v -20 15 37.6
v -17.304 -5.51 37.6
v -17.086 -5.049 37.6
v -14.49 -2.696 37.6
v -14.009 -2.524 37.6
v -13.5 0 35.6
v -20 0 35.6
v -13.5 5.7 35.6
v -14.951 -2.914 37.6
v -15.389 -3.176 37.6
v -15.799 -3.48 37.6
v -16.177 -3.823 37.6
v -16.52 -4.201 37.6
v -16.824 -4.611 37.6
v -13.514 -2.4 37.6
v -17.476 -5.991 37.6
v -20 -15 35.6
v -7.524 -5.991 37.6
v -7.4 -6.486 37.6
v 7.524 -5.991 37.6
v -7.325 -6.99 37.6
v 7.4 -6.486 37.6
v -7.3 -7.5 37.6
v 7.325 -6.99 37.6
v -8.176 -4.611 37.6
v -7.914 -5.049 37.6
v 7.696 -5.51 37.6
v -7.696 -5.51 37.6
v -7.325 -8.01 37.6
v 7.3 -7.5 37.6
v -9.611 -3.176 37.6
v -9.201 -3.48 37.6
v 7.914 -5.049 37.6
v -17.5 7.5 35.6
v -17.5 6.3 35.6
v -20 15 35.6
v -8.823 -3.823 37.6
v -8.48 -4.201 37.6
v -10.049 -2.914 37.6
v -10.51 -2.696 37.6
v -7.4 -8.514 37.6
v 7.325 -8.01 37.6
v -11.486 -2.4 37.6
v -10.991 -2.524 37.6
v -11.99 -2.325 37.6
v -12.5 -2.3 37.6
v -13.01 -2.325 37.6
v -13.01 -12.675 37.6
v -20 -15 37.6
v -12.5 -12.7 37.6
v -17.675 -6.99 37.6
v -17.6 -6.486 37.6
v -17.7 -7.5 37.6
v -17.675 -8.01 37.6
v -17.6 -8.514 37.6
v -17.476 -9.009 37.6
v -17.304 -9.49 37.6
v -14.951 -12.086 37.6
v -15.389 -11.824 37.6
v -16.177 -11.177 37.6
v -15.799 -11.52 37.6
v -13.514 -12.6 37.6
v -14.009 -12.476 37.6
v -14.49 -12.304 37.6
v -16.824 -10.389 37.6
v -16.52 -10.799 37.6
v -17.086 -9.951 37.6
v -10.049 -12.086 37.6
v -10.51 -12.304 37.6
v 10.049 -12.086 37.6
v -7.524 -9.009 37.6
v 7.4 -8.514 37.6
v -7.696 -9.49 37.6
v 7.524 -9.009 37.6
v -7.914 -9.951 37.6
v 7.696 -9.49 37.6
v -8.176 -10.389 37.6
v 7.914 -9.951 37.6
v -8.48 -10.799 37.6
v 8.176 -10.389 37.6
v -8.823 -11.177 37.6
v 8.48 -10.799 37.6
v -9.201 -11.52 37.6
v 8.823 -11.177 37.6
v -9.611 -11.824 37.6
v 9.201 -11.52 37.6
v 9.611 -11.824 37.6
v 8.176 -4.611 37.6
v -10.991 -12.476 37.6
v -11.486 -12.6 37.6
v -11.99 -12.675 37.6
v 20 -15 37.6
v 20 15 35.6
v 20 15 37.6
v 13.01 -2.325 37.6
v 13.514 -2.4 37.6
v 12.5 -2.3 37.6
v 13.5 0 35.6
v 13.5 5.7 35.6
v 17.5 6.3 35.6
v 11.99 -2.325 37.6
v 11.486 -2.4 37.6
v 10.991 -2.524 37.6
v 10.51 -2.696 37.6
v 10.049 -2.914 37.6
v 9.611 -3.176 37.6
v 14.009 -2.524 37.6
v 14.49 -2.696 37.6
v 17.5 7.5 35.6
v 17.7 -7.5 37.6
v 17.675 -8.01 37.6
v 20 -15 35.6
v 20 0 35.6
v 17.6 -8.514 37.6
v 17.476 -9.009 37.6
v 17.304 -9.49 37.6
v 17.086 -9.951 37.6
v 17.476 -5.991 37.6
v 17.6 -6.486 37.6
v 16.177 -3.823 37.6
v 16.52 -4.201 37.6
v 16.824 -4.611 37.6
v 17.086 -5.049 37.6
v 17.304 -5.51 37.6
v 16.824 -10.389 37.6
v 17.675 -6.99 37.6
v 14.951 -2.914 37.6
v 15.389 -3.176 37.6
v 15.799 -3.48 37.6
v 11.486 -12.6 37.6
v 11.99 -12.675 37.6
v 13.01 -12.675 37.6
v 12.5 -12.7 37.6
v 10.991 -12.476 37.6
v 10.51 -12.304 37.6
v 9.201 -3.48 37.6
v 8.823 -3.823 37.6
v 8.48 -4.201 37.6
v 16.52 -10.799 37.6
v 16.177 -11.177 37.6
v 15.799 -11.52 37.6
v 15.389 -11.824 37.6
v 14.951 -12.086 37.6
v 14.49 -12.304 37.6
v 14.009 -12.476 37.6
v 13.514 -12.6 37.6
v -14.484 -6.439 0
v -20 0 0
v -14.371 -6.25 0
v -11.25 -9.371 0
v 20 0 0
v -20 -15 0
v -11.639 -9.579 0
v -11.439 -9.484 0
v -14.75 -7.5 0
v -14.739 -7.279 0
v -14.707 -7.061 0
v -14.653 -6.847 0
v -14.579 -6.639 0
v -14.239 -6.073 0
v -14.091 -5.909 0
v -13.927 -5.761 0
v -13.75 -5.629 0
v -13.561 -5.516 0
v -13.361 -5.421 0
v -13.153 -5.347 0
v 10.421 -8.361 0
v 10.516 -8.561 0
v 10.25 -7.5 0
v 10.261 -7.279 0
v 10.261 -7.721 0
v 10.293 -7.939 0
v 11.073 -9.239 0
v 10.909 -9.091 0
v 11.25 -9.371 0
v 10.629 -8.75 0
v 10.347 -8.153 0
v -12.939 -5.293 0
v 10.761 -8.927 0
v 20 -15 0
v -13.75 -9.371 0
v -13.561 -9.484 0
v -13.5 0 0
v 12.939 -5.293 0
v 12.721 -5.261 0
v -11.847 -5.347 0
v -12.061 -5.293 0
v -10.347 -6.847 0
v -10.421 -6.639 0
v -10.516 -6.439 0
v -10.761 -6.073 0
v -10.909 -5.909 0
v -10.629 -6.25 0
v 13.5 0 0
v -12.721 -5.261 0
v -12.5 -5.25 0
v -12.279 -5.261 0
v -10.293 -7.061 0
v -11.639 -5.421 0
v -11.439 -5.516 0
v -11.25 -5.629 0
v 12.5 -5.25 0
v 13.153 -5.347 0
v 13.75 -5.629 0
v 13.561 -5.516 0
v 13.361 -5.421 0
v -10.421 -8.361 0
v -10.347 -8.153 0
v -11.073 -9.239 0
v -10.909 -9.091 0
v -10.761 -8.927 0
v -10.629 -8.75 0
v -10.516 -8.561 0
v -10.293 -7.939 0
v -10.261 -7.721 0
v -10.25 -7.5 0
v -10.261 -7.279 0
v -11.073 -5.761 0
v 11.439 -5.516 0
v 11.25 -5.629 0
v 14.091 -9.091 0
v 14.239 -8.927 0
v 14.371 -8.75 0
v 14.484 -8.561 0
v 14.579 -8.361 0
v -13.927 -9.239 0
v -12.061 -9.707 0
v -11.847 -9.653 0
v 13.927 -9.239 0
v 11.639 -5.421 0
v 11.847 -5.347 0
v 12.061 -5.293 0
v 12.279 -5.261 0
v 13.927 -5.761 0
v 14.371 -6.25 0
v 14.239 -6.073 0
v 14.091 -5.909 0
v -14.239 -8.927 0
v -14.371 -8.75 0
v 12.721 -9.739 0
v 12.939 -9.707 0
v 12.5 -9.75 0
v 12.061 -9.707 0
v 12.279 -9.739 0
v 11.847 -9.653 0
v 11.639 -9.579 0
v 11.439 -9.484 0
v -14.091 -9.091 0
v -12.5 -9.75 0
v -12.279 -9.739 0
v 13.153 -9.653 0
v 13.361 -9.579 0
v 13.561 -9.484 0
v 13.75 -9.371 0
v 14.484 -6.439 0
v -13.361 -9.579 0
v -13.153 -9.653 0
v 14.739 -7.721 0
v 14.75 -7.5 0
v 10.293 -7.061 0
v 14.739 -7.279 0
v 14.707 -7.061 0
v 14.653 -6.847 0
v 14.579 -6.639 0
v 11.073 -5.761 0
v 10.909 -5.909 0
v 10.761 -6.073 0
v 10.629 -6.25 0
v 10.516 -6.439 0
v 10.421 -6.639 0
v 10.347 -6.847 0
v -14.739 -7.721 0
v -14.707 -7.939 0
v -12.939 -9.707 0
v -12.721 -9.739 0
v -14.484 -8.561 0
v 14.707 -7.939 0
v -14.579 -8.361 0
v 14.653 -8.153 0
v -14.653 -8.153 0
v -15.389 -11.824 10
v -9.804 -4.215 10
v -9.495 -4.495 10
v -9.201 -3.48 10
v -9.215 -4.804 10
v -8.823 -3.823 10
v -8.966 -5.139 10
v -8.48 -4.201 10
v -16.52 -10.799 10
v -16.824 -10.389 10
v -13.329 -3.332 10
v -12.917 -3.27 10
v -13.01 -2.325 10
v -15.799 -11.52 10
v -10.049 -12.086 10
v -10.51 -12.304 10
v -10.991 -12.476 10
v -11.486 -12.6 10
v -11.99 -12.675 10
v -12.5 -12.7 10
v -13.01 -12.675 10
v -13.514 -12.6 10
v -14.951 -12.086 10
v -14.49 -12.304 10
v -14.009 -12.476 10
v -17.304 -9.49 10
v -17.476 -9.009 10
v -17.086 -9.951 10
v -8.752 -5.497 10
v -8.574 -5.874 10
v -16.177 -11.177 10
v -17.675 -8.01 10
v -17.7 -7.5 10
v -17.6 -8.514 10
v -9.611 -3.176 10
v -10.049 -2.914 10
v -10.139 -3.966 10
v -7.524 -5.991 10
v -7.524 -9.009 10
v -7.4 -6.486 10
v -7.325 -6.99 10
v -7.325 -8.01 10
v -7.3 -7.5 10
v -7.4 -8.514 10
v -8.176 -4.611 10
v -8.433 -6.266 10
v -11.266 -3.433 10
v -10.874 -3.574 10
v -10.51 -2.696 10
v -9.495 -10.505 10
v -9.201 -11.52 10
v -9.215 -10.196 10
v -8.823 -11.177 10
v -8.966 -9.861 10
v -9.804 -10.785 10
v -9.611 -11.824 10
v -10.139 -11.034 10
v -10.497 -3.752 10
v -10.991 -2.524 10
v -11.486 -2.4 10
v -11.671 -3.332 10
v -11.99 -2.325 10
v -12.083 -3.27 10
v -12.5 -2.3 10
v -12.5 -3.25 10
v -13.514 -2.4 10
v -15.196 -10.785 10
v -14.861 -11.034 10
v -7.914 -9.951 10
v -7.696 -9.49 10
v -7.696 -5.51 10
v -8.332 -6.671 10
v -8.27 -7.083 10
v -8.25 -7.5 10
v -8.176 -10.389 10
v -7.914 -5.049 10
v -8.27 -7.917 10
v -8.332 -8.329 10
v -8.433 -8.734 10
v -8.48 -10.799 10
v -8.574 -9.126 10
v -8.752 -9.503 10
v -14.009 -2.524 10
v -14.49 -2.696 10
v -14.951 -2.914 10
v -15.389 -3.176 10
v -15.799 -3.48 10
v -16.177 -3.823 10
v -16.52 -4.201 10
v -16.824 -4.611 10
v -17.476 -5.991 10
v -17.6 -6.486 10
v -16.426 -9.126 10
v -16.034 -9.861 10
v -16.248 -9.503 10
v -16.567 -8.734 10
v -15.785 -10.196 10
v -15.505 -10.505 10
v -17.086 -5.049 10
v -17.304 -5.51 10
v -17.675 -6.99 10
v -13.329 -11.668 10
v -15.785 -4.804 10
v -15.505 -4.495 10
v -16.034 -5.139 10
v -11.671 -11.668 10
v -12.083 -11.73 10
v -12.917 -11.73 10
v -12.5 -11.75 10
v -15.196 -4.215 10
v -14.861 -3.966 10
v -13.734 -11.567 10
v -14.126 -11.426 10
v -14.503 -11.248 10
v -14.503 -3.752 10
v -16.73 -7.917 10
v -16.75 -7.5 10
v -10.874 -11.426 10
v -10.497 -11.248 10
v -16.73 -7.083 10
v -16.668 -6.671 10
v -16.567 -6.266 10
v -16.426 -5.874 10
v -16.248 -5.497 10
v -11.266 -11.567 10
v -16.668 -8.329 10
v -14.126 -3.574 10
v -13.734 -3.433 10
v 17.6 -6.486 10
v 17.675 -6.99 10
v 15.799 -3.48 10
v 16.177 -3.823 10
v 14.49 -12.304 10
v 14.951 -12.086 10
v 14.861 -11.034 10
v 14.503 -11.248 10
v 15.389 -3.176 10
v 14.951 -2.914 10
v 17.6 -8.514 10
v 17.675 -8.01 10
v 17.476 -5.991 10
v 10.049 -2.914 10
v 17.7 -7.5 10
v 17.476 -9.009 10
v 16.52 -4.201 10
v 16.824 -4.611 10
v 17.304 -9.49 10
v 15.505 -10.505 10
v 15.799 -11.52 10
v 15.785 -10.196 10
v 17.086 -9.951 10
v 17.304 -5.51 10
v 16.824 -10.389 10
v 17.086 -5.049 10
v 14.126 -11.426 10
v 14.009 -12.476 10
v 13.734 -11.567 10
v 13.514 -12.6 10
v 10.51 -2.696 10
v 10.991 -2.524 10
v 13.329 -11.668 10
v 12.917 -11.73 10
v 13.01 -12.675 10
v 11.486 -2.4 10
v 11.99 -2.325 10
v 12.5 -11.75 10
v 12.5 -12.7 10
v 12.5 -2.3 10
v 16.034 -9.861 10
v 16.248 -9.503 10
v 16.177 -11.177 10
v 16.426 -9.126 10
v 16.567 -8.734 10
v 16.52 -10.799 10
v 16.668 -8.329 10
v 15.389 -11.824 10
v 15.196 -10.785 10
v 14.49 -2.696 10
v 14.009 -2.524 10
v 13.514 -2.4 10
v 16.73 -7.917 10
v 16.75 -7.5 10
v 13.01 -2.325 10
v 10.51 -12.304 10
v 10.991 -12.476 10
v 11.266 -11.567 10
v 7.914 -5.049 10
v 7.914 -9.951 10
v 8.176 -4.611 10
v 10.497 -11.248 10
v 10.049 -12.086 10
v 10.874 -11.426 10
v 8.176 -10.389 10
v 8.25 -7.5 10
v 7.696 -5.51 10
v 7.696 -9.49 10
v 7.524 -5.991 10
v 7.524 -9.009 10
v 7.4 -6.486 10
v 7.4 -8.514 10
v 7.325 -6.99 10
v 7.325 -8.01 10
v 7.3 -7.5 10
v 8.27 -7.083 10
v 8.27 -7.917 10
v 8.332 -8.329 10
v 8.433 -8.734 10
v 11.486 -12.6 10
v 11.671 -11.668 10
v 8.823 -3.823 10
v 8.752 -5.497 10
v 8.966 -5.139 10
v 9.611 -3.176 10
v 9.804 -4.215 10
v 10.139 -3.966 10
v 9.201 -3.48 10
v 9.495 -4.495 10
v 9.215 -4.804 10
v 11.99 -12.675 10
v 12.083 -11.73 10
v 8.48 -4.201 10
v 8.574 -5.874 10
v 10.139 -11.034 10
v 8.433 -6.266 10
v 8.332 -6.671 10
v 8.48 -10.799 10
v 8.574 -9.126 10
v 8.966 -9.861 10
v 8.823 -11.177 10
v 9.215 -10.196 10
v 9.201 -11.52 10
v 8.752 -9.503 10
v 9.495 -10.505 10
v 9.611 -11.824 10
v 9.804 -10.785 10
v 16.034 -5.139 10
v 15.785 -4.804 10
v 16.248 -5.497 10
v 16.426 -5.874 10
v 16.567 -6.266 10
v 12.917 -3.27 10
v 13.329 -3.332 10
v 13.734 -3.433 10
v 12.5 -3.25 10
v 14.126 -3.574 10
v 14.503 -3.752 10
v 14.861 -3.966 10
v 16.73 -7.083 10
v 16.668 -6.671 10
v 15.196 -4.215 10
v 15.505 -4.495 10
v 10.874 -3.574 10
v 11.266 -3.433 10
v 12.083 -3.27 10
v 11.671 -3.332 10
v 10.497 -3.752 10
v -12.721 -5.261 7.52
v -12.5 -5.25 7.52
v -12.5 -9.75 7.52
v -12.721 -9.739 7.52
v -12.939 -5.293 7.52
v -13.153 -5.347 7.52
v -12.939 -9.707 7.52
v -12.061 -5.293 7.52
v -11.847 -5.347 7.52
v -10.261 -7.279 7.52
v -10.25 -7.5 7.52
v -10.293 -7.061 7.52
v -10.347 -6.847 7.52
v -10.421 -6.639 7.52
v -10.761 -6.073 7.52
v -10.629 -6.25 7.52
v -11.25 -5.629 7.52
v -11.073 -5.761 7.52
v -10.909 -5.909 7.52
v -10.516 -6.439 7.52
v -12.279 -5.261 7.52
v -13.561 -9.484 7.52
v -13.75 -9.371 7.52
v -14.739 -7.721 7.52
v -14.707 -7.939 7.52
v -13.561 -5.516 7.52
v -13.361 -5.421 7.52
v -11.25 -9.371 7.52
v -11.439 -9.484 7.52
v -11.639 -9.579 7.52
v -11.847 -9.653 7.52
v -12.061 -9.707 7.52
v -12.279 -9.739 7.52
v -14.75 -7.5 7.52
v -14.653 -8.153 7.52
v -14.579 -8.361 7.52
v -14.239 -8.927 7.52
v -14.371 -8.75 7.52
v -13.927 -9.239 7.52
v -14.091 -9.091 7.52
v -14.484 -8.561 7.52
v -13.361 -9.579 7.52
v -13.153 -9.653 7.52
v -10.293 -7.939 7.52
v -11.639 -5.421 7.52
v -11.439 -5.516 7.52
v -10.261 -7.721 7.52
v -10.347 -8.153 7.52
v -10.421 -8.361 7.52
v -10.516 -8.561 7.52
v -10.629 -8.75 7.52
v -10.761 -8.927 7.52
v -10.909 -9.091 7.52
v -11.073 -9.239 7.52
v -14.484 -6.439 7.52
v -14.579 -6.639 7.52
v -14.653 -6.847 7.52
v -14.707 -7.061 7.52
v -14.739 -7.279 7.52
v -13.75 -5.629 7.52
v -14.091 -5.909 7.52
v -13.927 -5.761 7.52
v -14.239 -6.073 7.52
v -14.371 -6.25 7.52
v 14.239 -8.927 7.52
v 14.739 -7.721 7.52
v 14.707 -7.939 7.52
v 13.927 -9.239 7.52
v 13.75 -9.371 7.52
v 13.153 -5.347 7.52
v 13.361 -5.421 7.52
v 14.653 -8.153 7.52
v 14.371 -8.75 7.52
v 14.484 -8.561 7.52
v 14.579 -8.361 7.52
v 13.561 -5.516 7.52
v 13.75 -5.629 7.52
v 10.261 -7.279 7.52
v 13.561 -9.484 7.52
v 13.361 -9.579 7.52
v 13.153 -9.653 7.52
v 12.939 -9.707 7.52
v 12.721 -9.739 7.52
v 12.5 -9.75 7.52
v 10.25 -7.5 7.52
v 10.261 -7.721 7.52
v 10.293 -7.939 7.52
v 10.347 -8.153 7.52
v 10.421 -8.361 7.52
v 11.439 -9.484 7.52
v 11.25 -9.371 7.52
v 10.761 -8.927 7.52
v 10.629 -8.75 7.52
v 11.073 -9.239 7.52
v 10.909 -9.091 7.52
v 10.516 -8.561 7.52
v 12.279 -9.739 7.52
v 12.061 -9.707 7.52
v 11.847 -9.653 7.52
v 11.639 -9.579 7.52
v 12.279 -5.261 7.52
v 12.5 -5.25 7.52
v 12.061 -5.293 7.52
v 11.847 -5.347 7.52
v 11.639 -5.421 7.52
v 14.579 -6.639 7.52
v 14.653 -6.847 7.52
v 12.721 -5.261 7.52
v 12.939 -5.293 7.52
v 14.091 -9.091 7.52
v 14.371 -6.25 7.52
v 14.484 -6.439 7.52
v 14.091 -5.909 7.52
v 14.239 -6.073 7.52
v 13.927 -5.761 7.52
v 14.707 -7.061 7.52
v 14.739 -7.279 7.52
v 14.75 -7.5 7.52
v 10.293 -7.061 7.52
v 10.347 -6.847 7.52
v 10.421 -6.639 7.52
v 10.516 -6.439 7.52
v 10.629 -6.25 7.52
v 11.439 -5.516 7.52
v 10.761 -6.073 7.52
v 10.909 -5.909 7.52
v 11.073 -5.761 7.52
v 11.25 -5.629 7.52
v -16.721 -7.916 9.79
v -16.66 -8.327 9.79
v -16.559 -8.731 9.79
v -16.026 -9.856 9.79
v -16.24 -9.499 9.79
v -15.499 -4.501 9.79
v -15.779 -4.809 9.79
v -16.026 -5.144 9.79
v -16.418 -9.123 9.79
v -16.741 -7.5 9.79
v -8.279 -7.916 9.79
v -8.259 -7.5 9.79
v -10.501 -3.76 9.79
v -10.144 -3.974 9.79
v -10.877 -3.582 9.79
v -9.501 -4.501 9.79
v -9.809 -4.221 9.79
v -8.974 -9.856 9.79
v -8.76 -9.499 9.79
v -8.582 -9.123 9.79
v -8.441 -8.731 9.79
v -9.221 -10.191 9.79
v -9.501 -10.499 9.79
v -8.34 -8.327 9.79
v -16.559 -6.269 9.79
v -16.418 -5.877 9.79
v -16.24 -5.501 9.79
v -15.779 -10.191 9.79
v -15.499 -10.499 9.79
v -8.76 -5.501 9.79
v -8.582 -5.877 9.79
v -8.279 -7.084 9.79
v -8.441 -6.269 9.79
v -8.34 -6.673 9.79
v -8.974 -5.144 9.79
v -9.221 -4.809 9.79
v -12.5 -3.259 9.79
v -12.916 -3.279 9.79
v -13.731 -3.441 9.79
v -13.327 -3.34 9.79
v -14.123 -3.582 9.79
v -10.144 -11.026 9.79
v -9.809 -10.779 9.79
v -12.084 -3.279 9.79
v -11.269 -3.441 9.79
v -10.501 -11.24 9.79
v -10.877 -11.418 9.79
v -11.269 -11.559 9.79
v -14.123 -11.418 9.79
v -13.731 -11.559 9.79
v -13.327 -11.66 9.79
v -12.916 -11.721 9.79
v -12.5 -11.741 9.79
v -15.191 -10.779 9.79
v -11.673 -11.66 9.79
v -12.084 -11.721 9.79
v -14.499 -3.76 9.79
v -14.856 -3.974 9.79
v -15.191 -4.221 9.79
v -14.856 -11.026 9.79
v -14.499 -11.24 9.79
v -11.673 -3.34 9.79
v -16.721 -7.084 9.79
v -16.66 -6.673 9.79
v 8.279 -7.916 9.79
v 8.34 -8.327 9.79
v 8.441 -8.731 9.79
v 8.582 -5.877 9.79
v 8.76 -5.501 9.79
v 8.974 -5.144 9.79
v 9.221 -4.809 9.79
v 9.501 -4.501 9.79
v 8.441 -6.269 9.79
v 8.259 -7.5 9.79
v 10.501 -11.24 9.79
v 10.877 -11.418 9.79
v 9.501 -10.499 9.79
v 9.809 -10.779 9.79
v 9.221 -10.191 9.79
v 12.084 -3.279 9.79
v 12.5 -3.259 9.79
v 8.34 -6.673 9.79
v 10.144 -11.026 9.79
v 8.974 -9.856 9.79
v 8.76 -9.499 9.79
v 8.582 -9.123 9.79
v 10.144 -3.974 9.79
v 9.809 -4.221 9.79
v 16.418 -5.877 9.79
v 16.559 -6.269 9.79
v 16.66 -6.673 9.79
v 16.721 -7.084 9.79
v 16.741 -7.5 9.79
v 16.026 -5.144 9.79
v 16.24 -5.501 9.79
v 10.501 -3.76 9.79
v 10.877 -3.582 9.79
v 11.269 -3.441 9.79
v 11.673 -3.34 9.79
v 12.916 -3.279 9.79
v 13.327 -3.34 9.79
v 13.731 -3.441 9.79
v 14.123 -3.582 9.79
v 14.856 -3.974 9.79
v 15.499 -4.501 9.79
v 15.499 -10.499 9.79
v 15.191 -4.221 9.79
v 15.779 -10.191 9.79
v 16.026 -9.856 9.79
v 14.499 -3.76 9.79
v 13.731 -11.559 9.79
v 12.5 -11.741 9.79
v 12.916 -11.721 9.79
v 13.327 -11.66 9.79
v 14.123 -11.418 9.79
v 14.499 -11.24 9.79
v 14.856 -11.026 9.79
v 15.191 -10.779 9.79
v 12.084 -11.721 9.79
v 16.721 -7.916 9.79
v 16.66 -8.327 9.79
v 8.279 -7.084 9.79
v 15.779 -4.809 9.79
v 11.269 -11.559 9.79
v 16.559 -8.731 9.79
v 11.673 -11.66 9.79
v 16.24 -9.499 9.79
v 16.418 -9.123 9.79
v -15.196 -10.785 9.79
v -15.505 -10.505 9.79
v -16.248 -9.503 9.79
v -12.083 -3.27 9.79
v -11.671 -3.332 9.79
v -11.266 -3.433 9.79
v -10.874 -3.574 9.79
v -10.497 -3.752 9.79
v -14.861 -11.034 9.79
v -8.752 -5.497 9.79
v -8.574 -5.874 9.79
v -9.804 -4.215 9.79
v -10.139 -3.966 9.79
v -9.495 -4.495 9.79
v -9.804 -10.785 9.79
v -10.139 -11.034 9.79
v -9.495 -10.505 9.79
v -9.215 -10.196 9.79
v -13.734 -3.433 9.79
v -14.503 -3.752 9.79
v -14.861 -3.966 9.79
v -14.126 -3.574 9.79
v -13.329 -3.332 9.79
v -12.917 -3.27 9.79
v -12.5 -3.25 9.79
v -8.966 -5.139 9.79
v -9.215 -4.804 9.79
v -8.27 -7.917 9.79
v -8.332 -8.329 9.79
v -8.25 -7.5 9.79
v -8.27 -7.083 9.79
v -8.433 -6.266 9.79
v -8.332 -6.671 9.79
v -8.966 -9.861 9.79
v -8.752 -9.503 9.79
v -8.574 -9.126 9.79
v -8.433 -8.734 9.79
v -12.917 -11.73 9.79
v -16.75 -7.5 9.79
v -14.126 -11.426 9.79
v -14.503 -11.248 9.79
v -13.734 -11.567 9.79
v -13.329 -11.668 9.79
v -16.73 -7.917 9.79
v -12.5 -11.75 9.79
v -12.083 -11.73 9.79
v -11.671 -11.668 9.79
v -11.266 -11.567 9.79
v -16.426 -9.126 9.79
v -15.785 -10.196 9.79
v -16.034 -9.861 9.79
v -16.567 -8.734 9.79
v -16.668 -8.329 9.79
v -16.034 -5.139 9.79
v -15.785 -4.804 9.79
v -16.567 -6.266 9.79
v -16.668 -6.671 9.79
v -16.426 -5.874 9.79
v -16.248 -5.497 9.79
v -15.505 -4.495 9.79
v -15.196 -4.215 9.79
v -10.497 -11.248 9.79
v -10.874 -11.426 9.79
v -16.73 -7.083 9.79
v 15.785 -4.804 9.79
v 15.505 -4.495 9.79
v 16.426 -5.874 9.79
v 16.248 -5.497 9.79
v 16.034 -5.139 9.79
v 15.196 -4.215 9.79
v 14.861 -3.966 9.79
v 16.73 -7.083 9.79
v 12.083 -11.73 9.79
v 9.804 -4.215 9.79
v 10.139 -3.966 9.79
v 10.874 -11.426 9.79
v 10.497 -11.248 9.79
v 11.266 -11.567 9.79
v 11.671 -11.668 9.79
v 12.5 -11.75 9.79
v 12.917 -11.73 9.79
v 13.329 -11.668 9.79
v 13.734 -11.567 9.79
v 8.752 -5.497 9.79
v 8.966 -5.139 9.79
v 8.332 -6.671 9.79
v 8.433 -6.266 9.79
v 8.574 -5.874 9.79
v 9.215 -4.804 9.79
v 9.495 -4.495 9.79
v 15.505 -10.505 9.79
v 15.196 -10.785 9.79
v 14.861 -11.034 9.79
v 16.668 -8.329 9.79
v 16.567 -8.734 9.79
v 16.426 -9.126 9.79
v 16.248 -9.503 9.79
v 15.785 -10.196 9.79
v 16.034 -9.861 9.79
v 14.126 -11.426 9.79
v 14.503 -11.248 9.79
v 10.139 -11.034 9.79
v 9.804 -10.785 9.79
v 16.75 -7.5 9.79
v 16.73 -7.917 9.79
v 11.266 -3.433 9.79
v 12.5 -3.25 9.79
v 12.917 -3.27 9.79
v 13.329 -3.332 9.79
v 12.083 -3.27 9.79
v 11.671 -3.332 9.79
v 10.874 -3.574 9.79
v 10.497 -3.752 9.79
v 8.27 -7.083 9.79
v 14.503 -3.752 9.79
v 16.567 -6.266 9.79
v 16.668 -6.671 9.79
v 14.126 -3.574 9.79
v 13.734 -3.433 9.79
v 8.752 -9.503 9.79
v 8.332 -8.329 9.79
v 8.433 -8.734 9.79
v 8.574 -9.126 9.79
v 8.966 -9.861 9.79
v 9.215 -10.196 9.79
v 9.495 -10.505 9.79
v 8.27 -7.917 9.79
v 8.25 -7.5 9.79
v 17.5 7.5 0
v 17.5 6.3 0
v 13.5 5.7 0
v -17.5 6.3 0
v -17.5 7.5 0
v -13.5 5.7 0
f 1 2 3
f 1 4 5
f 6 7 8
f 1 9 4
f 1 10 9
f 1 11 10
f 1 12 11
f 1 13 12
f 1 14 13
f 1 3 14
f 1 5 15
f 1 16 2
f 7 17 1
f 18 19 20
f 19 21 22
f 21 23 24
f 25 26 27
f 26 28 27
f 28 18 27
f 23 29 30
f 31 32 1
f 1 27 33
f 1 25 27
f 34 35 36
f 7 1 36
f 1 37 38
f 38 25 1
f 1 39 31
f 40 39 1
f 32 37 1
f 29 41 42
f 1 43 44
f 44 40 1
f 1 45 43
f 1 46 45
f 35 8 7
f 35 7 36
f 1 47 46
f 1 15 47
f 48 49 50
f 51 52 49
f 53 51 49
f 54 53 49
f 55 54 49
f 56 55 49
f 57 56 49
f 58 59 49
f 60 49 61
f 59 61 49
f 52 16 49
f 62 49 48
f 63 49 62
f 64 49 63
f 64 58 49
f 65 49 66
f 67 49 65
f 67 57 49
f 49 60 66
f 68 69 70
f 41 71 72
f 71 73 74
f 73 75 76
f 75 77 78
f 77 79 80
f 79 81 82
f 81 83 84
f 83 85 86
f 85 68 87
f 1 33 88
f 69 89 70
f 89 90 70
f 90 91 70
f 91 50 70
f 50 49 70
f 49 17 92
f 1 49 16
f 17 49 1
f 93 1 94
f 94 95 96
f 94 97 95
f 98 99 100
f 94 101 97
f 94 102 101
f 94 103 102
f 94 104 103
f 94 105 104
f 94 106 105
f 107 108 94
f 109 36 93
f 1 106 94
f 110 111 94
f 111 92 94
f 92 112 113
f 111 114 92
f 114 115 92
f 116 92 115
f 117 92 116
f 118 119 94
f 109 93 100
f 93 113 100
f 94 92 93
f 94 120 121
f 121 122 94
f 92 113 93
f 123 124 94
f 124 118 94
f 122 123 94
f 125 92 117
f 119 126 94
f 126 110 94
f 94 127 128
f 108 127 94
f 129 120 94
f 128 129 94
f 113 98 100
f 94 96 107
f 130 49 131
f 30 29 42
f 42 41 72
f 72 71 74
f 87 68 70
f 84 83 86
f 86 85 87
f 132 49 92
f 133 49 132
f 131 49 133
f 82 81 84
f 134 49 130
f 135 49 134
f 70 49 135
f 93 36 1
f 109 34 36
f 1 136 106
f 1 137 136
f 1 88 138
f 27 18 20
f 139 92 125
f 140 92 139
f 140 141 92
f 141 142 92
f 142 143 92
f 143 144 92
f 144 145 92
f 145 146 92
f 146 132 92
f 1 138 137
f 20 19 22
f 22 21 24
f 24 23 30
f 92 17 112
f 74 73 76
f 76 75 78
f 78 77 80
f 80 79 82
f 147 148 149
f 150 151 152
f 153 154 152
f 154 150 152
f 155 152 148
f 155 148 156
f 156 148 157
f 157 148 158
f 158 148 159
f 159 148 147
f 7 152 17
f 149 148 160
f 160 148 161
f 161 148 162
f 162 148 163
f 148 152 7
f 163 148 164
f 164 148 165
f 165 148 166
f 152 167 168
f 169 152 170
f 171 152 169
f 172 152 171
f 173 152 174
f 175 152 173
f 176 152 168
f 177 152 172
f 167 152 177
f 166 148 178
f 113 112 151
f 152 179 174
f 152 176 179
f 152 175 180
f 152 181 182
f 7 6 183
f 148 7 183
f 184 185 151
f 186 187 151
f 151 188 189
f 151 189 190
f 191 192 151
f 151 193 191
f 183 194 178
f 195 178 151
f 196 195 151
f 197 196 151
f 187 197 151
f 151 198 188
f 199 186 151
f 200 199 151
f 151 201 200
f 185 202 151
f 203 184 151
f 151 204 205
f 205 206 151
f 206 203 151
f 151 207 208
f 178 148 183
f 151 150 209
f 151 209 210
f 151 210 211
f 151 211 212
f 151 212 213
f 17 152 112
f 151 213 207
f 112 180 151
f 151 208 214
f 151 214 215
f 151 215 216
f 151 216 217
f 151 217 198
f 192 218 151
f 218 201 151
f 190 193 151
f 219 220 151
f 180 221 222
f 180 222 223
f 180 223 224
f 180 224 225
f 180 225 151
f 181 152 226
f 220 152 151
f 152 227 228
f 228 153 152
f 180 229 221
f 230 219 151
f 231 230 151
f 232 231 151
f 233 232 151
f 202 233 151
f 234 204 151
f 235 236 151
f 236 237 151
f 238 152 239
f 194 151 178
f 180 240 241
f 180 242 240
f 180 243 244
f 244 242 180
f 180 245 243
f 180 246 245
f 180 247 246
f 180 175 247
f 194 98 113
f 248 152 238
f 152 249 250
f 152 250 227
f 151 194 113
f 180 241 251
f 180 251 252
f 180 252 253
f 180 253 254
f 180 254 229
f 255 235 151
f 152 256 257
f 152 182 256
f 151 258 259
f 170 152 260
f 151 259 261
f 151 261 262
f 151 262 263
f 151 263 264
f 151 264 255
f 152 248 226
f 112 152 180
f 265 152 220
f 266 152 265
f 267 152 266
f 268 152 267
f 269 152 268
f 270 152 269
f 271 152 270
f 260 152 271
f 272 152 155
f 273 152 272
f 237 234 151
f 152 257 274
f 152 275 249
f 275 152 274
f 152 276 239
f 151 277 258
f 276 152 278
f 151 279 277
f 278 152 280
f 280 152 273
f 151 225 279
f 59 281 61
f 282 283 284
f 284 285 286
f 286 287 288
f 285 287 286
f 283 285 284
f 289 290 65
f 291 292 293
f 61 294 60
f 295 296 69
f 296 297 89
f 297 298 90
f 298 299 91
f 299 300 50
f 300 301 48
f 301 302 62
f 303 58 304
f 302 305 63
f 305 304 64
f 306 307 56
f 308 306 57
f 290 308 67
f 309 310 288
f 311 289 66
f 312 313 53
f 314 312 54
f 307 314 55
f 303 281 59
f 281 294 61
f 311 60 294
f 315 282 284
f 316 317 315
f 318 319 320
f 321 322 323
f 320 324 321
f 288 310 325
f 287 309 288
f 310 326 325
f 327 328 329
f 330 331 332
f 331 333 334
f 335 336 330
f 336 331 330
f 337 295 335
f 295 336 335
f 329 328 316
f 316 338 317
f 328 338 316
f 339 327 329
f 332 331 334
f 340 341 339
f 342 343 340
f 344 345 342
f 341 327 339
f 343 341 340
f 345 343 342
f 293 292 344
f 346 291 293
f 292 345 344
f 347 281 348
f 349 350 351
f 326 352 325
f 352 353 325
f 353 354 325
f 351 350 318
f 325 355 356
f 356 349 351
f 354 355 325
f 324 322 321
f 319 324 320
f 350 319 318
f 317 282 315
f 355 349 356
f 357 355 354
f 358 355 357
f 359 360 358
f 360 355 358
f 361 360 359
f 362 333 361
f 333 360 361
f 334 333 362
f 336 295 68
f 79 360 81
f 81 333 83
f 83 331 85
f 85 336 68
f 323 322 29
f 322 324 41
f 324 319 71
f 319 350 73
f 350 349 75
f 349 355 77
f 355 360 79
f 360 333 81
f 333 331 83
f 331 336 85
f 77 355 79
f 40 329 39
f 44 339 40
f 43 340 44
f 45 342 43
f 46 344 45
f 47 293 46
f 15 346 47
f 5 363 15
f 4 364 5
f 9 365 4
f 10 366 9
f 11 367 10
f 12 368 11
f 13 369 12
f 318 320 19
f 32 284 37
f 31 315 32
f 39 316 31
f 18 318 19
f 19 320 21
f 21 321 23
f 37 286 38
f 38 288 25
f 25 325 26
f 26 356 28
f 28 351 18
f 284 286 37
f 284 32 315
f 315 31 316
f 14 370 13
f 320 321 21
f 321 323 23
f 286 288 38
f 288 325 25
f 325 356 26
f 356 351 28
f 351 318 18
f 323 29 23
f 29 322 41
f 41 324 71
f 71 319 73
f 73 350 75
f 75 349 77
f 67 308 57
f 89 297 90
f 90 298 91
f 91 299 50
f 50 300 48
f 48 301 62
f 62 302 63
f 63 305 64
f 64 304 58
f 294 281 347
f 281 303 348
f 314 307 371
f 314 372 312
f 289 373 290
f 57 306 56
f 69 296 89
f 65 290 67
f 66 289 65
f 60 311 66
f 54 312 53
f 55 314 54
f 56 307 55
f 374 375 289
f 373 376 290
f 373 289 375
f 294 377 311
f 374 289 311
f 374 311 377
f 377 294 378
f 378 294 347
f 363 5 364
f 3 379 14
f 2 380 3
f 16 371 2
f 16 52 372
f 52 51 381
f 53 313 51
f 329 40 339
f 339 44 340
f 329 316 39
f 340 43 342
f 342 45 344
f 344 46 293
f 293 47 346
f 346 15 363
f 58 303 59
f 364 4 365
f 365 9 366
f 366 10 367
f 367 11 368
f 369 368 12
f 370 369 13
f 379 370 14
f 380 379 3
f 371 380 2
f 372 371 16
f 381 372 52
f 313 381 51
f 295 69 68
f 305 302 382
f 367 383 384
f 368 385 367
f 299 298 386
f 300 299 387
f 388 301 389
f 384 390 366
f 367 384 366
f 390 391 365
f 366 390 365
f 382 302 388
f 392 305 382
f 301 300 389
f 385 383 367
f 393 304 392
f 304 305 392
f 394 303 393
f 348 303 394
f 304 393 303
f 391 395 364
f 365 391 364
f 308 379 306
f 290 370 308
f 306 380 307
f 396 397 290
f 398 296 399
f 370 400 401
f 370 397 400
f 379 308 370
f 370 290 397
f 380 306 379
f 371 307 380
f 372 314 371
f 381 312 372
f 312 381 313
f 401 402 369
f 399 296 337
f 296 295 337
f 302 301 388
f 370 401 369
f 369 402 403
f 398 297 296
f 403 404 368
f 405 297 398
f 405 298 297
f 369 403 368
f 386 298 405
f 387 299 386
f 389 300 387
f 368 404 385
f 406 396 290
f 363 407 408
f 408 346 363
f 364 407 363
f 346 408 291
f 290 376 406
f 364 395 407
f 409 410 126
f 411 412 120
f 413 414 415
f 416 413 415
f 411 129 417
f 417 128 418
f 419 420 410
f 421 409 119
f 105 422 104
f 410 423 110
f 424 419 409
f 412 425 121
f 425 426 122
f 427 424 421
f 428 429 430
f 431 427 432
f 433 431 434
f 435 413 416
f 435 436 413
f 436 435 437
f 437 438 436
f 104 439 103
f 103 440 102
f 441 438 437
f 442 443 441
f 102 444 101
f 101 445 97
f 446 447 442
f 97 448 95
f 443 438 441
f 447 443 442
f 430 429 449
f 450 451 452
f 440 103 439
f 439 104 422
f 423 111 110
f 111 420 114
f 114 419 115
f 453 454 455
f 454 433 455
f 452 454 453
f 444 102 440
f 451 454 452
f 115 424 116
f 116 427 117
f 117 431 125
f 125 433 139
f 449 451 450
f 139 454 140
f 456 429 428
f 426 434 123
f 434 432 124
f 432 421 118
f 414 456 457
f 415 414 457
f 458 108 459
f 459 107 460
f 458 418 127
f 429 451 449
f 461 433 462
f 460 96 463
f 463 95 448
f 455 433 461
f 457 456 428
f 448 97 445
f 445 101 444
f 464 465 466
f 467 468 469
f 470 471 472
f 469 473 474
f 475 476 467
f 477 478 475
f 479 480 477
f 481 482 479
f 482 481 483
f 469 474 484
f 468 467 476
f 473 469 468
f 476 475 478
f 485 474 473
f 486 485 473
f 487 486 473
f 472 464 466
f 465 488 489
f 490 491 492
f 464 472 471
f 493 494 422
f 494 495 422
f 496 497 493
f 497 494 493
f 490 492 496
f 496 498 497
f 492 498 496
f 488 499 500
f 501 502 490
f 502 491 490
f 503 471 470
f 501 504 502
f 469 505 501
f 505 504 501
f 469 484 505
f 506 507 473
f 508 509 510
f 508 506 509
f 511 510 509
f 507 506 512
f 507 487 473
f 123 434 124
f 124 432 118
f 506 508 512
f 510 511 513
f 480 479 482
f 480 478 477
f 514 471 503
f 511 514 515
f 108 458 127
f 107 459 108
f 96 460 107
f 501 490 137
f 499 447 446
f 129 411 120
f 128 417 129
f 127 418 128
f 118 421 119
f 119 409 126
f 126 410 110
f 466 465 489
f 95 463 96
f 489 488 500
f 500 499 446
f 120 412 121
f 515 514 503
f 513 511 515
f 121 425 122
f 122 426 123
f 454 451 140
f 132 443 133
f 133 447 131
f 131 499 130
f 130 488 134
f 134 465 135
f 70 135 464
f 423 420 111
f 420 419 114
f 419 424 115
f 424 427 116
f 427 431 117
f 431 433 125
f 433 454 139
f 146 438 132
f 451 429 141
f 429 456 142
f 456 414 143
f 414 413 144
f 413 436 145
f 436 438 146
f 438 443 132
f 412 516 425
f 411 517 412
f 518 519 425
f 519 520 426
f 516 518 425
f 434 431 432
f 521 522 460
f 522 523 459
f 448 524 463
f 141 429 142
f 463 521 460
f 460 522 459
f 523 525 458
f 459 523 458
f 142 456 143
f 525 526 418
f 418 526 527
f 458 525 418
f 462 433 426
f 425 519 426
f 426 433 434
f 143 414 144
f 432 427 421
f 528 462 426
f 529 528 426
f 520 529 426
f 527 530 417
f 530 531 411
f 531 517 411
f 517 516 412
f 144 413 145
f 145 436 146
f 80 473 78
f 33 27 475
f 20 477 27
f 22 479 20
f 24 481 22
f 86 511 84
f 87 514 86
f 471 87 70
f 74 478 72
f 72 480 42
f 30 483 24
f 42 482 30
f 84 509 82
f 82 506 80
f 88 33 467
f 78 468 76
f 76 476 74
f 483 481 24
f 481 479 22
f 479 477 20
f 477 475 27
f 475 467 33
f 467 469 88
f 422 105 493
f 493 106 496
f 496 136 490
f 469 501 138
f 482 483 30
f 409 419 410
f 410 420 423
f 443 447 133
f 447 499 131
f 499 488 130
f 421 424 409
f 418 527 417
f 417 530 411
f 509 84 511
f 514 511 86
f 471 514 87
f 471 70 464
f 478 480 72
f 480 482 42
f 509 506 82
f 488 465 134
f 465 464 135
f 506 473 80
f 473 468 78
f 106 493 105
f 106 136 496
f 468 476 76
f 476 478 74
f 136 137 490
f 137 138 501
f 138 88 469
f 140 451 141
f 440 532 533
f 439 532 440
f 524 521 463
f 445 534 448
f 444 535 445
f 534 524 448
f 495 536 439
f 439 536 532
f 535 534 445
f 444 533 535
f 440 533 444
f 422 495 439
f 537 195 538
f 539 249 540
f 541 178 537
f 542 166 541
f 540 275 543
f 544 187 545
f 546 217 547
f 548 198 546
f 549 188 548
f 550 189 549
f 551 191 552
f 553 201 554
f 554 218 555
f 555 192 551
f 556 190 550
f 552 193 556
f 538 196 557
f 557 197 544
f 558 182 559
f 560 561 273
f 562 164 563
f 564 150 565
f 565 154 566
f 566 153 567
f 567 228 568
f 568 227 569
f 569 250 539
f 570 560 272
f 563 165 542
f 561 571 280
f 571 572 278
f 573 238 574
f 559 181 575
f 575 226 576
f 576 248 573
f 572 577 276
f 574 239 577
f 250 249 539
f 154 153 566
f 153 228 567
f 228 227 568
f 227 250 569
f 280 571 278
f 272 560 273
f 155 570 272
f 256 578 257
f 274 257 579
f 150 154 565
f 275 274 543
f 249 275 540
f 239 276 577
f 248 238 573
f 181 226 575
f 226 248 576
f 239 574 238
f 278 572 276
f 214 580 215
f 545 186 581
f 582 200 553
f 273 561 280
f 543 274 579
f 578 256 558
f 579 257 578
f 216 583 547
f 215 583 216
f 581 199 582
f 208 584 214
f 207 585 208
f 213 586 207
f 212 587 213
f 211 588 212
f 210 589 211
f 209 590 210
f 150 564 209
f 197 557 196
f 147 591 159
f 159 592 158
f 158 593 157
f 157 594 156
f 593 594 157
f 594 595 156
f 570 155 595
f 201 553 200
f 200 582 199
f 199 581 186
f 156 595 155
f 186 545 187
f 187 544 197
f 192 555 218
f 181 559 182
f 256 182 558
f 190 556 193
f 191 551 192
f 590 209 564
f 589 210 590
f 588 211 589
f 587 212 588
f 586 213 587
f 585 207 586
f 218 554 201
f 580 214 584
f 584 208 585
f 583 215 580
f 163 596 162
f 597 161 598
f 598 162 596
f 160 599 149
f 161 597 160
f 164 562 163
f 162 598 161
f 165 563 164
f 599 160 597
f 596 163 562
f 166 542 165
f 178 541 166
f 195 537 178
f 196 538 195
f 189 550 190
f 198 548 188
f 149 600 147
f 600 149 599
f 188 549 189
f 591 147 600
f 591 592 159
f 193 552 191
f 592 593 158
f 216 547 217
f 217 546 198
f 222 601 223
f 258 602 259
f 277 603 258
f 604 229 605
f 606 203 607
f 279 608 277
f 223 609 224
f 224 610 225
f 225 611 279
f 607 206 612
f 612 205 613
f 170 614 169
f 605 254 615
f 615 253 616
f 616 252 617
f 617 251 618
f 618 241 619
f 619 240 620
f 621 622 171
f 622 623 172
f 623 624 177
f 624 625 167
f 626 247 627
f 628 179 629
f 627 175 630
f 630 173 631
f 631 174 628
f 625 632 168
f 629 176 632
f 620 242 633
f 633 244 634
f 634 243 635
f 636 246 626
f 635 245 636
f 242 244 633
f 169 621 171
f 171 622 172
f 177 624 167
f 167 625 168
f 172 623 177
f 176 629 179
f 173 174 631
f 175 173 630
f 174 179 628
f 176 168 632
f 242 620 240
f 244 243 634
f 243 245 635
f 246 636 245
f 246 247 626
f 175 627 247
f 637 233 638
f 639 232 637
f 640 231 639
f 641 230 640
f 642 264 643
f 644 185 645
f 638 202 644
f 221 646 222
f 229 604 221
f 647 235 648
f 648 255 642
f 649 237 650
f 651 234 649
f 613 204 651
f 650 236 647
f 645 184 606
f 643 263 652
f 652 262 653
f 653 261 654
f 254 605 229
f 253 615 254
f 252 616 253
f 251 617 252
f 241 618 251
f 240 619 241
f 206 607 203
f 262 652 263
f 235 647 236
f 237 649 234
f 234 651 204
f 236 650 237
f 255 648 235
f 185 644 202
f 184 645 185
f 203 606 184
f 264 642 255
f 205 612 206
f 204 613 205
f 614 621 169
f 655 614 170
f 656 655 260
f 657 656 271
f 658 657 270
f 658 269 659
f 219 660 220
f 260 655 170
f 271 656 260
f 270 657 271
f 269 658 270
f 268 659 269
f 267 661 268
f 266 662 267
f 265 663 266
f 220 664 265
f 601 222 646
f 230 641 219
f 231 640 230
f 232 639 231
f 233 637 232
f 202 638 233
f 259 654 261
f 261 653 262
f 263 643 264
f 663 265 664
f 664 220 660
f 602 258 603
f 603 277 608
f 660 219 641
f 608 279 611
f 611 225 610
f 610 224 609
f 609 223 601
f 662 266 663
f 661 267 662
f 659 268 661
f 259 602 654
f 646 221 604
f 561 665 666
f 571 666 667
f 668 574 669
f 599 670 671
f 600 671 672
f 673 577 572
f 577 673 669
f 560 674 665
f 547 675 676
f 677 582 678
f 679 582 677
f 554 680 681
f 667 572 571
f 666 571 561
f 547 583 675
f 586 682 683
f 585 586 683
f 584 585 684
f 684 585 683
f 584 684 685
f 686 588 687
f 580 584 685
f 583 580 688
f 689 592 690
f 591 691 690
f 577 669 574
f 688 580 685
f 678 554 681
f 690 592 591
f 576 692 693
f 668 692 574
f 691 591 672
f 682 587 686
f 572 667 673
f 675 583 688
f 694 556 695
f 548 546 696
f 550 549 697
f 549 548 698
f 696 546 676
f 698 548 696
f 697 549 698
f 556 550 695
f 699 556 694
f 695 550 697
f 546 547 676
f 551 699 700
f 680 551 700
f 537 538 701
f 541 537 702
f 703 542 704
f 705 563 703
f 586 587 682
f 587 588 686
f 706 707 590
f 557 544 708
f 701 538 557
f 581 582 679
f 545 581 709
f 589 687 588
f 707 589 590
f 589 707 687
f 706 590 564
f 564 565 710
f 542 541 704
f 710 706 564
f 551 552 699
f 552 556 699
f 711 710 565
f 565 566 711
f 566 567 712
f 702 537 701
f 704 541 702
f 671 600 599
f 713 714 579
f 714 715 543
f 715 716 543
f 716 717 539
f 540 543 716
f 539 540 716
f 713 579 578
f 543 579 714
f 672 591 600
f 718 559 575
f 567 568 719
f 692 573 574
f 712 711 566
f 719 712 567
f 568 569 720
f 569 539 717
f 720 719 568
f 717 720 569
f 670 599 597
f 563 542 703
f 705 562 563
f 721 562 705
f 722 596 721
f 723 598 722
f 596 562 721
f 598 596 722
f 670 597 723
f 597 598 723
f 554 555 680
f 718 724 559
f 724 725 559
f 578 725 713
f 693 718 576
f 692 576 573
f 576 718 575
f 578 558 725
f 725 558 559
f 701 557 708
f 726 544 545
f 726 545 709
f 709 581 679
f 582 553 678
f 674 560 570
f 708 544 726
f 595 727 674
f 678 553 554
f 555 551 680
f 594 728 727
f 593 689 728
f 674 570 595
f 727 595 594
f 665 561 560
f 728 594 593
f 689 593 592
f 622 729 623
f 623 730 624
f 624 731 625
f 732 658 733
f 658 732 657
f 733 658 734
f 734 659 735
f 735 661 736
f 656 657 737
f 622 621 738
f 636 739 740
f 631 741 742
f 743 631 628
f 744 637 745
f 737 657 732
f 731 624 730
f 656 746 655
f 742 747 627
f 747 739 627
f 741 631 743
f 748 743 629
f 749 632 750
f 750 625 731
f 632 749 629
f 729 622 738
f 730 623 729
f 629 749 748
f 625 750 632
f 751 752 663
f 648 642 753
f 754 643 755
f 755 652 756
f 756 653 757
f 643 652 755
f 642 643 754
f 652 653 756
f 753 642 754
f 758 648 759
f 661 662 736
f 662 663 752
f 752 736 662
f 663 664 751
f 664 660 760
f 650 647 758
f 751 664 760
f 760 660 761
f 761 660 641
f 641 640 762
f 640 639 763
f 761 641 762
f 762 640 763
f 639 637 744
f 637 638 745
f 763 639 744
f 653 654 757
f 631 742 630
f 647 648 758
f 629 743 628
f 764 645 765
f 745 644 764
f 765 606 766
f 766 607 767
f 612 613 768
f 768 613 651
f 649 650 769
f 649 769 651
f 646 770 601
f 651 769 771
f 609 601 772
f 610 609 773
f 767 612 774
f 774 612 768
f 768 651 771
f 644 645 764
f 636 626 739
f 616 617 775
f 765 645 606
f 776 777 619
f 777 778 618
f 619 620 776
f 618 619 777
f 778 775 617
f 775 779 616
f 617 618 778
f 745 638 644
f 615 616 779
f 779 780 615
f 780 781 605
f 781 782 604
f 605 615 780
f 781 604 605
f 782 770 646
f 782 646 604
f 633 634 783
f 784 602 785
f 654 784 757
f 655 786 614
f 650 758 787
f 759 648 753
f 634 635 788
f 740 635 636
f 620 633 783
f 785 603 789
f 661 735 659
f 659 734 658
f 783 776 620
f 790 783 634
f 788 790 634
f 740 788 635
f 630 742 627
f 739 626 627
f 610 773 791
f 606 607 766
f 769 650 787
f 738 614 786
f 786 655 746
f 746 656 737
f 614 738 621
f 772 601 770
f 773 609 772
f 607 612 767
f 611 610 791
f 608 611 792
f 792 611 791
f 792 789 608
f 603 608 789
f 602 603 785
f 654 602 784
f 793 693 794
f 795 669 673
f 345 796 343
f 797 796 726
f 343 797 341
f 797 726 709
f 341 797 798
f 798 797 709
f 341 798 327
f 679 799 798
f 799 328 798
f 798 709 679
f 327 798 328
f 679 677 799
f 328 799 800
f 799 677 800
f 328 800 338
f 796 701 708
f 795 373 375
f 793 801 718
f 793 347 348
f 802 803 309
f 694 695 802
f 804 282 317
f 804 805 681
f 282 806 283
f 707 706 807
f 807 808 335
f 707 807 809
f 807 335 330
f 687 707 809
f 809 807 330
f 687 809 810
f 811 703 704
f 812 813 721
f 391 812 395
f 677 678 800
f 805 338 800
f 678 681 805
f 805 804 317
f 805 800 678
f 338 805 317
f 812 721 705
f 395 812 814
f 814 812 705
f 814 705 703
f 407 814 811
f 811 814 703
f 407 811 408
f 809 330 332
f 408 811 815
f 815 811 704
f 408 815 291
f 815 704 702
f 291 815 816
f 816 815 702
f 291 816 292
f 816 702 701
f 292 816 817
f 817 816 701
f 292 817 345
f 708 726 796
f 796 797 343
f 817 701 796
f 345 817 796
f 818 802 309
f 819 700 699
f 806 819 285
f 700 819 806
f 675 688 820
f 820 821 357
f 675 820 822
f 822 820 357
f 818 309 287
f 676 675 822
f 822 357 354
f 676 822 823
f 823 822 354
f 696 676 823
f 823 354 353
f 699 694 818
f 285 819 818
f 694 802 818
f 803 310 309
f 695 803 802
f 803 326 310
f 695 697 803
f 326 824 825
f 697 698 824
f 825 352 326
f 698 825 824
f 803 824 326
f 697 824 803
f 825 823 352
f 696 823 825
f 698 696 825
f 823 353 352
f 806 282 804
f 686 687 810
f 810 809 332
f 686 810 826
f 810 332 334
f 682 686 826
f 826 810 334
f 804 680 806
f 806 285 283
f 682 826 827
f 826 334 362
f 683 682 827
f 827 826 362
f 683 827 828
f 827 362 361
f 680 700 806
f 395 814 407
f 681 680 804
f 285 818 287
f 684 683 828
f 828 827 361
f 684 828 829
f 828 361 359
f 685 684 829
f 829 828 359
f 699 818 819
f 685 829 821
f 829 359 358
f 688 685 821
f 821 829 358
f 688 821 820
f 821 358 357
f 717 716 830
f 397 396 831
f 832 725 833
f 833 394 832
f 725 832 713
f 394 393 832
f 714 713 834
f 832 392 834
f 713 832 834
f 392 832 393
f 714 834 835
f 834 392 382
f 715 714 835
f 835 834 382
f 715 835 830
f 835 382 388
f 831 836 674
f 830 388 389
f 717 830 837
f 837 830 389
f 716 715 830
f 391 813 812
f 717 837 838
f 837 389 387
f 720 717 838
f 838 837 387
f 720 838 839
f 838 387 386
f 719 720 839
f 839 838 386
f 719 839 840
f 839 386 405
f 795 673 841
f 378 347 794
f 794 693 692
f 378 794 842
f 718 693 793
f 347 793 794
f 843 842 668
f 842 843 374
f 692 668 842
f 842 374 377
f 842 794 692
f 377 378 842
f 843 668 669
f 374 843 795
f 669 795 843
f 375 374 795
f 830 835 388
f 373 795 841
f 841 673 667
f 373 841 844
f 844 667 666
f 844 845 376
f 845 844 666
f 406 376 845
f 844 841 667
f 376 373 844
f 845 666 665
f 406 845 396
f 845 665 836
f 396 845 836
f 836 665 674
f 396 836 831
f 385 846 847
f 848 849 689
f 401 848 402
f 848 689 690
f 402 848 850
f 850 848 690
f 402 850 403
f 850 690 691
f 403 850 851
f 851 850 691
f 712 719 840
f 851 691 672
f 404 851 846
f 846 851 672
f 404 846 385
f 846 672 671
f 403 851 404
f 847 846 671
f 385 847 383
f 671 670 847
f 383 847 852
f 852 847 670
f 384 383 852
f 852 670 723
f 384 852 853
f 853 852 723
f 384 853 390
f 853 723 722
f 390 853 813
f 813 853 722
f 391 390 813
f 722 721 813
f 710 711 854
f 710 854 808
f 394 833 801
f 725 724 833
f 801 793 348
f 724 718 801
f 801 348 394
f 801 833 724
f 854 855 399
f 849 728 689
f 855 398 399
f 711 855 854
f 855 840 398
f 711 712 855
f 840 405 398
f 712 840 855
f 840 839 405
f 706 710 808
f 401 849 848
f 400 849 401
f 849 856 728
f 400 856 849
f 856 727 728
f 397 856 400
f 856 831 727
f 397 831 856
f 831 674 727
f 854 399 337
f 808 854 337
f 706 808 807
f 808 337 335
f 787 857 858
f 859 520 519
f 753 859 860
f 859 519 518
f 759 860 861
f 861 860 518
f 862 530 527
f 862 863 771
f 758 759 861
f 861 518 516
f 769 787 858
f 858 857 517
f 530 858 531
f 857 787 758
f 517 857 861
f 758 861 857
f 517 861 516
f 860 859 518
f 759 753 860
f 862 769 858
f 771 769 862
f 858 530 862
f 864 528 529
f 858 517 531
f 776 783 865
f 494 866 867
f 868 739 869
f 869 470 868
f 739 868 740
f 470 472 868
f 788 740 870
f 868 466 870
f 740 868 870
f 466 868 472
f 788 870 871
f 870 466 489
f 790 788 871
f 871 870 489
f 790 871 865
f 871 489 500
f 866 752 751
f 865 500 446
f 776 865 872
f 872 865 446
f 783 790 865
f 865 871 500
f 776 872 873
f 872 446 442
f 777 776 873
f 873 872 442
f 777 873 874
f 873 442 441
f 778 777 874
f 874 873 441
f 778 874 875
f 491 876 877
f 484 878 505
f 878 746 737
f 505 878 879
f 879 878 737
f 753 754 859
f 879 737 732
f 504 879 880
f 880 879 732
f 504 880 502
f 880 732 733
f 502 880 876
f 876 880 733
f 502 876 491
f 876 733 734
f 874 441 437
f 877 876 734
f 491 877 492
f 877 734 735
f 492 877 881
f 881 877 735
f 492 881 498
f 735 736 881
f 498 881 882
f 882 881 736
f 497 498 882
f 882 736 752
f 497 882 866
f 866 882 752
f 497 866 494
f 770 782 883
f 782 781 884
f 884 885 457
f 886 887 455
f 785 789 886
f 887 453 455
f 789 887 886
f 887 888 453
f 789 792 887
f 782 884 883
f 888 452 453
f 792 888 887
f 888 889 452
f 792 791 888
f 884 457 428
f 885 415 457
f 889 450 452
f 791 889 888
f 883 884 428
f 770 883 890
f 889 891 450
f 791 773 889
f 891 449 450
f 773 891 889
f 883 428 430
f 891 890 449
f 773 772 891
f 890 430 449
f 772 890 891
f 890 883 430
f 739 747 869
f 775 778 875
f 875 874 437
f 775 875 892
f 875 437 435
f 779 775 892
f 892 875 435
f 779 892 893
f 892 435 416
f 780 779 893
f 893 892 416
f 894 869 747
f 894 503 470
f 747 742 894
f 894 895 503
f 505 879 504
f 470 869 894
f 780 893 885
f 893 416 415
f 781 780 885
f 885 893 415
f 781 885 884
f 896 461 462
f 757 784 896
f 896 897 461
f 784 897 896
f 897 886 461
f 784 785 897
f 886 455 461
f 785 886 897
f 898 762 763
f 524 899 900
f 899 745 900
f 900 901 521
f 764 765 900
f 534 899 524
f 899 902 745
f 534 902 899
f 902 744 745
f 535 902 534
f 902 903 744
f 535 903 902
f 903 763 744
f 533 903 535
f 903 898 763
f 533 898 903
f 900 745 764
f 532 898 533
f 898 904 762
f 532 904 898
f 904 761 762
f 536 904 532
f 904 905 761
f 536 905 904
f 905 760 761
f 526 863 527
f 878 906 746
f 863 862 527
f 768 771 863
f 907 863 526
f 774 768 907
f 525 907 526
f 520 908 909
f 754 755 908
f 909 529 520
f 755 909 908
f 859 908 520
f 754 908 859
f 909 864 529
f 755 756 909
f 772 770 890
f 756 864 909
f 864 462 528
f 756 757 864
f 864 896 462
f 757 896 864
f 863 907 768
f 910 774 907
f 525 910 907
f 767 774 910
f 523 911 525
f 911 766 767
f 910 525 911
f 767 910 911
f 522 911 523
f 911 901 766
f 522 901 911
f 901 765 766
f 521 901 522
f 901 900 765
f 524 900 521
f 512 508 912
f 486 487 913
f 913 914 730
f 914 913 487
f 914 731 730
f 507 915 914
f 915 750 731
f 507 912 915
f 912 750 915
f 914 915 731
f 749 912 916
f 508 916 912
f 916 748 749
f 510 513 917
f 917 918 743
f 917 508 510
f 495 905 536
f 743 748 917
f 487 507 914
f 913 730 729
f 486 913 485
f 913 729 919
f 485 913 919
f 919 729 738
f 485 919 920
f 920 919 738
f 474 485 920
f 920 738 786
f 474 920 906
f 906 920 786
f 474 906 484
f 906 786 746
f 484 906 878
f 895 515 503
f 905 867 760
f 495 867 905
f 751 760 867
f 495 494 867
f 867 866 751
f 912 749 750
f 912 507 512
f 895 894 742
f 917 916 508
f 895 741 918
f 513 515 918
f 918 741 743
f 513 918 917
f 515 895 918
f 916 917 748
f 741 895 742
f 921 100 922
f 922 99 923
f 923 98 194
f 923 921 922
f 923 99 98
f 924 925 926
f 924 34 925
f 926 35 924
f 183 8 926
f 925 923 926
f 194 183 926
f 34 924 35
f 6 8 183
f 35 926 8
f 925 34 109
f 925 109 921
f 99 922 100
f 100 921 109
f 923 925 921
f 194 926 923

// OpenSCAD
$fn = $preview ? 16 : 64;

teWidth = 17.8;
railDepth = 7.5;
railHeightInner = 27;
railHeightOuter = 35;

lssBodySize = [90, 50.5];

module dinrail(te){
    color("grey")
        linear_extrude(te*teWidth, center=true){
            points = [
                [0, 0],
                [railHeightOuter/2, 0],
                [railHeightOuter/2, -1.2],
                [railHeightInner/2, -1.8],
                [railHeightInner/2, -railDepth],
                [0, -railDepth],
            ];
            polygon(points);
            mirror([1,0])
                polygon(points);
        }
}

module lss(te){
    lssProtrusionSize = [45, 72];
    
    color("lightgrey")
        linear_extrude(te*teWidth, center=true){
            union(){
                translate([0, 0])
                    square(lssBodySize, center = true);
                translate([-lssProtrusionSize.x/2, -lssBodySize.y/2])
                    square(lssProtrusionSize);
            }
        }
}

module hole(holeDiameter, headDiameter, topDiameter, extraSink)
{
    cylinder(h=100, d=topDiameter);
    translate([0,0,-100])
    cylinder(h=100, d=holeDiameter);
    translate([0, 0, -((headDiameter-holeDiameter)/2*1.14)- extraSink])
        cylinder(h=(headDiameter-holeDiameter)/2*1.14, d1=holeDiameter, d2=headDiameter);
    translate([0, 0, -extraSink-0.01])
        cylinder(h=extraSink+0.02, d=headDiameter);
}

holderSize = [40, 15];

topCoverThickness = 2;
topCoverWidth = 30;

module lssHolder(te){
    holderHeight = teWidth * te;

    union()
    {
        translate([0,railDepth,holderHeight / 2])
            dinrail(te);

        difference() {
            union(){
                translate([0,0,holderHeight + topCoverThickness/2])
                    cube([holderSize.x, topCoverWidth, topCoverThickness], center = true);
                translate([0, -holderSize.y/2, holderHeight / 2])
                    cube([holderSize.x, holderSize.y, teWidth * te], center = true);
            }
            translate([holderSize.x/2 - holderSize.y/2, -holderSize.y/2, 10])
                hole(4.5, 8.5, 10.4, 0.2);
            translate([-(holderSize.x/2 - holderSize.y/2), -holderSize.y/2, 10])
                hole(4.5, 8.5, 10.4, 0.2);
        }
    }
}

caseTe = 2;

if($preview){
    difference(){
        lssHolder(caseTe);
        translate([0,-22.5,0])
            cube([60, 30, 100], center=true);
    }
} else {
    lssHolder(caseTe);
}
